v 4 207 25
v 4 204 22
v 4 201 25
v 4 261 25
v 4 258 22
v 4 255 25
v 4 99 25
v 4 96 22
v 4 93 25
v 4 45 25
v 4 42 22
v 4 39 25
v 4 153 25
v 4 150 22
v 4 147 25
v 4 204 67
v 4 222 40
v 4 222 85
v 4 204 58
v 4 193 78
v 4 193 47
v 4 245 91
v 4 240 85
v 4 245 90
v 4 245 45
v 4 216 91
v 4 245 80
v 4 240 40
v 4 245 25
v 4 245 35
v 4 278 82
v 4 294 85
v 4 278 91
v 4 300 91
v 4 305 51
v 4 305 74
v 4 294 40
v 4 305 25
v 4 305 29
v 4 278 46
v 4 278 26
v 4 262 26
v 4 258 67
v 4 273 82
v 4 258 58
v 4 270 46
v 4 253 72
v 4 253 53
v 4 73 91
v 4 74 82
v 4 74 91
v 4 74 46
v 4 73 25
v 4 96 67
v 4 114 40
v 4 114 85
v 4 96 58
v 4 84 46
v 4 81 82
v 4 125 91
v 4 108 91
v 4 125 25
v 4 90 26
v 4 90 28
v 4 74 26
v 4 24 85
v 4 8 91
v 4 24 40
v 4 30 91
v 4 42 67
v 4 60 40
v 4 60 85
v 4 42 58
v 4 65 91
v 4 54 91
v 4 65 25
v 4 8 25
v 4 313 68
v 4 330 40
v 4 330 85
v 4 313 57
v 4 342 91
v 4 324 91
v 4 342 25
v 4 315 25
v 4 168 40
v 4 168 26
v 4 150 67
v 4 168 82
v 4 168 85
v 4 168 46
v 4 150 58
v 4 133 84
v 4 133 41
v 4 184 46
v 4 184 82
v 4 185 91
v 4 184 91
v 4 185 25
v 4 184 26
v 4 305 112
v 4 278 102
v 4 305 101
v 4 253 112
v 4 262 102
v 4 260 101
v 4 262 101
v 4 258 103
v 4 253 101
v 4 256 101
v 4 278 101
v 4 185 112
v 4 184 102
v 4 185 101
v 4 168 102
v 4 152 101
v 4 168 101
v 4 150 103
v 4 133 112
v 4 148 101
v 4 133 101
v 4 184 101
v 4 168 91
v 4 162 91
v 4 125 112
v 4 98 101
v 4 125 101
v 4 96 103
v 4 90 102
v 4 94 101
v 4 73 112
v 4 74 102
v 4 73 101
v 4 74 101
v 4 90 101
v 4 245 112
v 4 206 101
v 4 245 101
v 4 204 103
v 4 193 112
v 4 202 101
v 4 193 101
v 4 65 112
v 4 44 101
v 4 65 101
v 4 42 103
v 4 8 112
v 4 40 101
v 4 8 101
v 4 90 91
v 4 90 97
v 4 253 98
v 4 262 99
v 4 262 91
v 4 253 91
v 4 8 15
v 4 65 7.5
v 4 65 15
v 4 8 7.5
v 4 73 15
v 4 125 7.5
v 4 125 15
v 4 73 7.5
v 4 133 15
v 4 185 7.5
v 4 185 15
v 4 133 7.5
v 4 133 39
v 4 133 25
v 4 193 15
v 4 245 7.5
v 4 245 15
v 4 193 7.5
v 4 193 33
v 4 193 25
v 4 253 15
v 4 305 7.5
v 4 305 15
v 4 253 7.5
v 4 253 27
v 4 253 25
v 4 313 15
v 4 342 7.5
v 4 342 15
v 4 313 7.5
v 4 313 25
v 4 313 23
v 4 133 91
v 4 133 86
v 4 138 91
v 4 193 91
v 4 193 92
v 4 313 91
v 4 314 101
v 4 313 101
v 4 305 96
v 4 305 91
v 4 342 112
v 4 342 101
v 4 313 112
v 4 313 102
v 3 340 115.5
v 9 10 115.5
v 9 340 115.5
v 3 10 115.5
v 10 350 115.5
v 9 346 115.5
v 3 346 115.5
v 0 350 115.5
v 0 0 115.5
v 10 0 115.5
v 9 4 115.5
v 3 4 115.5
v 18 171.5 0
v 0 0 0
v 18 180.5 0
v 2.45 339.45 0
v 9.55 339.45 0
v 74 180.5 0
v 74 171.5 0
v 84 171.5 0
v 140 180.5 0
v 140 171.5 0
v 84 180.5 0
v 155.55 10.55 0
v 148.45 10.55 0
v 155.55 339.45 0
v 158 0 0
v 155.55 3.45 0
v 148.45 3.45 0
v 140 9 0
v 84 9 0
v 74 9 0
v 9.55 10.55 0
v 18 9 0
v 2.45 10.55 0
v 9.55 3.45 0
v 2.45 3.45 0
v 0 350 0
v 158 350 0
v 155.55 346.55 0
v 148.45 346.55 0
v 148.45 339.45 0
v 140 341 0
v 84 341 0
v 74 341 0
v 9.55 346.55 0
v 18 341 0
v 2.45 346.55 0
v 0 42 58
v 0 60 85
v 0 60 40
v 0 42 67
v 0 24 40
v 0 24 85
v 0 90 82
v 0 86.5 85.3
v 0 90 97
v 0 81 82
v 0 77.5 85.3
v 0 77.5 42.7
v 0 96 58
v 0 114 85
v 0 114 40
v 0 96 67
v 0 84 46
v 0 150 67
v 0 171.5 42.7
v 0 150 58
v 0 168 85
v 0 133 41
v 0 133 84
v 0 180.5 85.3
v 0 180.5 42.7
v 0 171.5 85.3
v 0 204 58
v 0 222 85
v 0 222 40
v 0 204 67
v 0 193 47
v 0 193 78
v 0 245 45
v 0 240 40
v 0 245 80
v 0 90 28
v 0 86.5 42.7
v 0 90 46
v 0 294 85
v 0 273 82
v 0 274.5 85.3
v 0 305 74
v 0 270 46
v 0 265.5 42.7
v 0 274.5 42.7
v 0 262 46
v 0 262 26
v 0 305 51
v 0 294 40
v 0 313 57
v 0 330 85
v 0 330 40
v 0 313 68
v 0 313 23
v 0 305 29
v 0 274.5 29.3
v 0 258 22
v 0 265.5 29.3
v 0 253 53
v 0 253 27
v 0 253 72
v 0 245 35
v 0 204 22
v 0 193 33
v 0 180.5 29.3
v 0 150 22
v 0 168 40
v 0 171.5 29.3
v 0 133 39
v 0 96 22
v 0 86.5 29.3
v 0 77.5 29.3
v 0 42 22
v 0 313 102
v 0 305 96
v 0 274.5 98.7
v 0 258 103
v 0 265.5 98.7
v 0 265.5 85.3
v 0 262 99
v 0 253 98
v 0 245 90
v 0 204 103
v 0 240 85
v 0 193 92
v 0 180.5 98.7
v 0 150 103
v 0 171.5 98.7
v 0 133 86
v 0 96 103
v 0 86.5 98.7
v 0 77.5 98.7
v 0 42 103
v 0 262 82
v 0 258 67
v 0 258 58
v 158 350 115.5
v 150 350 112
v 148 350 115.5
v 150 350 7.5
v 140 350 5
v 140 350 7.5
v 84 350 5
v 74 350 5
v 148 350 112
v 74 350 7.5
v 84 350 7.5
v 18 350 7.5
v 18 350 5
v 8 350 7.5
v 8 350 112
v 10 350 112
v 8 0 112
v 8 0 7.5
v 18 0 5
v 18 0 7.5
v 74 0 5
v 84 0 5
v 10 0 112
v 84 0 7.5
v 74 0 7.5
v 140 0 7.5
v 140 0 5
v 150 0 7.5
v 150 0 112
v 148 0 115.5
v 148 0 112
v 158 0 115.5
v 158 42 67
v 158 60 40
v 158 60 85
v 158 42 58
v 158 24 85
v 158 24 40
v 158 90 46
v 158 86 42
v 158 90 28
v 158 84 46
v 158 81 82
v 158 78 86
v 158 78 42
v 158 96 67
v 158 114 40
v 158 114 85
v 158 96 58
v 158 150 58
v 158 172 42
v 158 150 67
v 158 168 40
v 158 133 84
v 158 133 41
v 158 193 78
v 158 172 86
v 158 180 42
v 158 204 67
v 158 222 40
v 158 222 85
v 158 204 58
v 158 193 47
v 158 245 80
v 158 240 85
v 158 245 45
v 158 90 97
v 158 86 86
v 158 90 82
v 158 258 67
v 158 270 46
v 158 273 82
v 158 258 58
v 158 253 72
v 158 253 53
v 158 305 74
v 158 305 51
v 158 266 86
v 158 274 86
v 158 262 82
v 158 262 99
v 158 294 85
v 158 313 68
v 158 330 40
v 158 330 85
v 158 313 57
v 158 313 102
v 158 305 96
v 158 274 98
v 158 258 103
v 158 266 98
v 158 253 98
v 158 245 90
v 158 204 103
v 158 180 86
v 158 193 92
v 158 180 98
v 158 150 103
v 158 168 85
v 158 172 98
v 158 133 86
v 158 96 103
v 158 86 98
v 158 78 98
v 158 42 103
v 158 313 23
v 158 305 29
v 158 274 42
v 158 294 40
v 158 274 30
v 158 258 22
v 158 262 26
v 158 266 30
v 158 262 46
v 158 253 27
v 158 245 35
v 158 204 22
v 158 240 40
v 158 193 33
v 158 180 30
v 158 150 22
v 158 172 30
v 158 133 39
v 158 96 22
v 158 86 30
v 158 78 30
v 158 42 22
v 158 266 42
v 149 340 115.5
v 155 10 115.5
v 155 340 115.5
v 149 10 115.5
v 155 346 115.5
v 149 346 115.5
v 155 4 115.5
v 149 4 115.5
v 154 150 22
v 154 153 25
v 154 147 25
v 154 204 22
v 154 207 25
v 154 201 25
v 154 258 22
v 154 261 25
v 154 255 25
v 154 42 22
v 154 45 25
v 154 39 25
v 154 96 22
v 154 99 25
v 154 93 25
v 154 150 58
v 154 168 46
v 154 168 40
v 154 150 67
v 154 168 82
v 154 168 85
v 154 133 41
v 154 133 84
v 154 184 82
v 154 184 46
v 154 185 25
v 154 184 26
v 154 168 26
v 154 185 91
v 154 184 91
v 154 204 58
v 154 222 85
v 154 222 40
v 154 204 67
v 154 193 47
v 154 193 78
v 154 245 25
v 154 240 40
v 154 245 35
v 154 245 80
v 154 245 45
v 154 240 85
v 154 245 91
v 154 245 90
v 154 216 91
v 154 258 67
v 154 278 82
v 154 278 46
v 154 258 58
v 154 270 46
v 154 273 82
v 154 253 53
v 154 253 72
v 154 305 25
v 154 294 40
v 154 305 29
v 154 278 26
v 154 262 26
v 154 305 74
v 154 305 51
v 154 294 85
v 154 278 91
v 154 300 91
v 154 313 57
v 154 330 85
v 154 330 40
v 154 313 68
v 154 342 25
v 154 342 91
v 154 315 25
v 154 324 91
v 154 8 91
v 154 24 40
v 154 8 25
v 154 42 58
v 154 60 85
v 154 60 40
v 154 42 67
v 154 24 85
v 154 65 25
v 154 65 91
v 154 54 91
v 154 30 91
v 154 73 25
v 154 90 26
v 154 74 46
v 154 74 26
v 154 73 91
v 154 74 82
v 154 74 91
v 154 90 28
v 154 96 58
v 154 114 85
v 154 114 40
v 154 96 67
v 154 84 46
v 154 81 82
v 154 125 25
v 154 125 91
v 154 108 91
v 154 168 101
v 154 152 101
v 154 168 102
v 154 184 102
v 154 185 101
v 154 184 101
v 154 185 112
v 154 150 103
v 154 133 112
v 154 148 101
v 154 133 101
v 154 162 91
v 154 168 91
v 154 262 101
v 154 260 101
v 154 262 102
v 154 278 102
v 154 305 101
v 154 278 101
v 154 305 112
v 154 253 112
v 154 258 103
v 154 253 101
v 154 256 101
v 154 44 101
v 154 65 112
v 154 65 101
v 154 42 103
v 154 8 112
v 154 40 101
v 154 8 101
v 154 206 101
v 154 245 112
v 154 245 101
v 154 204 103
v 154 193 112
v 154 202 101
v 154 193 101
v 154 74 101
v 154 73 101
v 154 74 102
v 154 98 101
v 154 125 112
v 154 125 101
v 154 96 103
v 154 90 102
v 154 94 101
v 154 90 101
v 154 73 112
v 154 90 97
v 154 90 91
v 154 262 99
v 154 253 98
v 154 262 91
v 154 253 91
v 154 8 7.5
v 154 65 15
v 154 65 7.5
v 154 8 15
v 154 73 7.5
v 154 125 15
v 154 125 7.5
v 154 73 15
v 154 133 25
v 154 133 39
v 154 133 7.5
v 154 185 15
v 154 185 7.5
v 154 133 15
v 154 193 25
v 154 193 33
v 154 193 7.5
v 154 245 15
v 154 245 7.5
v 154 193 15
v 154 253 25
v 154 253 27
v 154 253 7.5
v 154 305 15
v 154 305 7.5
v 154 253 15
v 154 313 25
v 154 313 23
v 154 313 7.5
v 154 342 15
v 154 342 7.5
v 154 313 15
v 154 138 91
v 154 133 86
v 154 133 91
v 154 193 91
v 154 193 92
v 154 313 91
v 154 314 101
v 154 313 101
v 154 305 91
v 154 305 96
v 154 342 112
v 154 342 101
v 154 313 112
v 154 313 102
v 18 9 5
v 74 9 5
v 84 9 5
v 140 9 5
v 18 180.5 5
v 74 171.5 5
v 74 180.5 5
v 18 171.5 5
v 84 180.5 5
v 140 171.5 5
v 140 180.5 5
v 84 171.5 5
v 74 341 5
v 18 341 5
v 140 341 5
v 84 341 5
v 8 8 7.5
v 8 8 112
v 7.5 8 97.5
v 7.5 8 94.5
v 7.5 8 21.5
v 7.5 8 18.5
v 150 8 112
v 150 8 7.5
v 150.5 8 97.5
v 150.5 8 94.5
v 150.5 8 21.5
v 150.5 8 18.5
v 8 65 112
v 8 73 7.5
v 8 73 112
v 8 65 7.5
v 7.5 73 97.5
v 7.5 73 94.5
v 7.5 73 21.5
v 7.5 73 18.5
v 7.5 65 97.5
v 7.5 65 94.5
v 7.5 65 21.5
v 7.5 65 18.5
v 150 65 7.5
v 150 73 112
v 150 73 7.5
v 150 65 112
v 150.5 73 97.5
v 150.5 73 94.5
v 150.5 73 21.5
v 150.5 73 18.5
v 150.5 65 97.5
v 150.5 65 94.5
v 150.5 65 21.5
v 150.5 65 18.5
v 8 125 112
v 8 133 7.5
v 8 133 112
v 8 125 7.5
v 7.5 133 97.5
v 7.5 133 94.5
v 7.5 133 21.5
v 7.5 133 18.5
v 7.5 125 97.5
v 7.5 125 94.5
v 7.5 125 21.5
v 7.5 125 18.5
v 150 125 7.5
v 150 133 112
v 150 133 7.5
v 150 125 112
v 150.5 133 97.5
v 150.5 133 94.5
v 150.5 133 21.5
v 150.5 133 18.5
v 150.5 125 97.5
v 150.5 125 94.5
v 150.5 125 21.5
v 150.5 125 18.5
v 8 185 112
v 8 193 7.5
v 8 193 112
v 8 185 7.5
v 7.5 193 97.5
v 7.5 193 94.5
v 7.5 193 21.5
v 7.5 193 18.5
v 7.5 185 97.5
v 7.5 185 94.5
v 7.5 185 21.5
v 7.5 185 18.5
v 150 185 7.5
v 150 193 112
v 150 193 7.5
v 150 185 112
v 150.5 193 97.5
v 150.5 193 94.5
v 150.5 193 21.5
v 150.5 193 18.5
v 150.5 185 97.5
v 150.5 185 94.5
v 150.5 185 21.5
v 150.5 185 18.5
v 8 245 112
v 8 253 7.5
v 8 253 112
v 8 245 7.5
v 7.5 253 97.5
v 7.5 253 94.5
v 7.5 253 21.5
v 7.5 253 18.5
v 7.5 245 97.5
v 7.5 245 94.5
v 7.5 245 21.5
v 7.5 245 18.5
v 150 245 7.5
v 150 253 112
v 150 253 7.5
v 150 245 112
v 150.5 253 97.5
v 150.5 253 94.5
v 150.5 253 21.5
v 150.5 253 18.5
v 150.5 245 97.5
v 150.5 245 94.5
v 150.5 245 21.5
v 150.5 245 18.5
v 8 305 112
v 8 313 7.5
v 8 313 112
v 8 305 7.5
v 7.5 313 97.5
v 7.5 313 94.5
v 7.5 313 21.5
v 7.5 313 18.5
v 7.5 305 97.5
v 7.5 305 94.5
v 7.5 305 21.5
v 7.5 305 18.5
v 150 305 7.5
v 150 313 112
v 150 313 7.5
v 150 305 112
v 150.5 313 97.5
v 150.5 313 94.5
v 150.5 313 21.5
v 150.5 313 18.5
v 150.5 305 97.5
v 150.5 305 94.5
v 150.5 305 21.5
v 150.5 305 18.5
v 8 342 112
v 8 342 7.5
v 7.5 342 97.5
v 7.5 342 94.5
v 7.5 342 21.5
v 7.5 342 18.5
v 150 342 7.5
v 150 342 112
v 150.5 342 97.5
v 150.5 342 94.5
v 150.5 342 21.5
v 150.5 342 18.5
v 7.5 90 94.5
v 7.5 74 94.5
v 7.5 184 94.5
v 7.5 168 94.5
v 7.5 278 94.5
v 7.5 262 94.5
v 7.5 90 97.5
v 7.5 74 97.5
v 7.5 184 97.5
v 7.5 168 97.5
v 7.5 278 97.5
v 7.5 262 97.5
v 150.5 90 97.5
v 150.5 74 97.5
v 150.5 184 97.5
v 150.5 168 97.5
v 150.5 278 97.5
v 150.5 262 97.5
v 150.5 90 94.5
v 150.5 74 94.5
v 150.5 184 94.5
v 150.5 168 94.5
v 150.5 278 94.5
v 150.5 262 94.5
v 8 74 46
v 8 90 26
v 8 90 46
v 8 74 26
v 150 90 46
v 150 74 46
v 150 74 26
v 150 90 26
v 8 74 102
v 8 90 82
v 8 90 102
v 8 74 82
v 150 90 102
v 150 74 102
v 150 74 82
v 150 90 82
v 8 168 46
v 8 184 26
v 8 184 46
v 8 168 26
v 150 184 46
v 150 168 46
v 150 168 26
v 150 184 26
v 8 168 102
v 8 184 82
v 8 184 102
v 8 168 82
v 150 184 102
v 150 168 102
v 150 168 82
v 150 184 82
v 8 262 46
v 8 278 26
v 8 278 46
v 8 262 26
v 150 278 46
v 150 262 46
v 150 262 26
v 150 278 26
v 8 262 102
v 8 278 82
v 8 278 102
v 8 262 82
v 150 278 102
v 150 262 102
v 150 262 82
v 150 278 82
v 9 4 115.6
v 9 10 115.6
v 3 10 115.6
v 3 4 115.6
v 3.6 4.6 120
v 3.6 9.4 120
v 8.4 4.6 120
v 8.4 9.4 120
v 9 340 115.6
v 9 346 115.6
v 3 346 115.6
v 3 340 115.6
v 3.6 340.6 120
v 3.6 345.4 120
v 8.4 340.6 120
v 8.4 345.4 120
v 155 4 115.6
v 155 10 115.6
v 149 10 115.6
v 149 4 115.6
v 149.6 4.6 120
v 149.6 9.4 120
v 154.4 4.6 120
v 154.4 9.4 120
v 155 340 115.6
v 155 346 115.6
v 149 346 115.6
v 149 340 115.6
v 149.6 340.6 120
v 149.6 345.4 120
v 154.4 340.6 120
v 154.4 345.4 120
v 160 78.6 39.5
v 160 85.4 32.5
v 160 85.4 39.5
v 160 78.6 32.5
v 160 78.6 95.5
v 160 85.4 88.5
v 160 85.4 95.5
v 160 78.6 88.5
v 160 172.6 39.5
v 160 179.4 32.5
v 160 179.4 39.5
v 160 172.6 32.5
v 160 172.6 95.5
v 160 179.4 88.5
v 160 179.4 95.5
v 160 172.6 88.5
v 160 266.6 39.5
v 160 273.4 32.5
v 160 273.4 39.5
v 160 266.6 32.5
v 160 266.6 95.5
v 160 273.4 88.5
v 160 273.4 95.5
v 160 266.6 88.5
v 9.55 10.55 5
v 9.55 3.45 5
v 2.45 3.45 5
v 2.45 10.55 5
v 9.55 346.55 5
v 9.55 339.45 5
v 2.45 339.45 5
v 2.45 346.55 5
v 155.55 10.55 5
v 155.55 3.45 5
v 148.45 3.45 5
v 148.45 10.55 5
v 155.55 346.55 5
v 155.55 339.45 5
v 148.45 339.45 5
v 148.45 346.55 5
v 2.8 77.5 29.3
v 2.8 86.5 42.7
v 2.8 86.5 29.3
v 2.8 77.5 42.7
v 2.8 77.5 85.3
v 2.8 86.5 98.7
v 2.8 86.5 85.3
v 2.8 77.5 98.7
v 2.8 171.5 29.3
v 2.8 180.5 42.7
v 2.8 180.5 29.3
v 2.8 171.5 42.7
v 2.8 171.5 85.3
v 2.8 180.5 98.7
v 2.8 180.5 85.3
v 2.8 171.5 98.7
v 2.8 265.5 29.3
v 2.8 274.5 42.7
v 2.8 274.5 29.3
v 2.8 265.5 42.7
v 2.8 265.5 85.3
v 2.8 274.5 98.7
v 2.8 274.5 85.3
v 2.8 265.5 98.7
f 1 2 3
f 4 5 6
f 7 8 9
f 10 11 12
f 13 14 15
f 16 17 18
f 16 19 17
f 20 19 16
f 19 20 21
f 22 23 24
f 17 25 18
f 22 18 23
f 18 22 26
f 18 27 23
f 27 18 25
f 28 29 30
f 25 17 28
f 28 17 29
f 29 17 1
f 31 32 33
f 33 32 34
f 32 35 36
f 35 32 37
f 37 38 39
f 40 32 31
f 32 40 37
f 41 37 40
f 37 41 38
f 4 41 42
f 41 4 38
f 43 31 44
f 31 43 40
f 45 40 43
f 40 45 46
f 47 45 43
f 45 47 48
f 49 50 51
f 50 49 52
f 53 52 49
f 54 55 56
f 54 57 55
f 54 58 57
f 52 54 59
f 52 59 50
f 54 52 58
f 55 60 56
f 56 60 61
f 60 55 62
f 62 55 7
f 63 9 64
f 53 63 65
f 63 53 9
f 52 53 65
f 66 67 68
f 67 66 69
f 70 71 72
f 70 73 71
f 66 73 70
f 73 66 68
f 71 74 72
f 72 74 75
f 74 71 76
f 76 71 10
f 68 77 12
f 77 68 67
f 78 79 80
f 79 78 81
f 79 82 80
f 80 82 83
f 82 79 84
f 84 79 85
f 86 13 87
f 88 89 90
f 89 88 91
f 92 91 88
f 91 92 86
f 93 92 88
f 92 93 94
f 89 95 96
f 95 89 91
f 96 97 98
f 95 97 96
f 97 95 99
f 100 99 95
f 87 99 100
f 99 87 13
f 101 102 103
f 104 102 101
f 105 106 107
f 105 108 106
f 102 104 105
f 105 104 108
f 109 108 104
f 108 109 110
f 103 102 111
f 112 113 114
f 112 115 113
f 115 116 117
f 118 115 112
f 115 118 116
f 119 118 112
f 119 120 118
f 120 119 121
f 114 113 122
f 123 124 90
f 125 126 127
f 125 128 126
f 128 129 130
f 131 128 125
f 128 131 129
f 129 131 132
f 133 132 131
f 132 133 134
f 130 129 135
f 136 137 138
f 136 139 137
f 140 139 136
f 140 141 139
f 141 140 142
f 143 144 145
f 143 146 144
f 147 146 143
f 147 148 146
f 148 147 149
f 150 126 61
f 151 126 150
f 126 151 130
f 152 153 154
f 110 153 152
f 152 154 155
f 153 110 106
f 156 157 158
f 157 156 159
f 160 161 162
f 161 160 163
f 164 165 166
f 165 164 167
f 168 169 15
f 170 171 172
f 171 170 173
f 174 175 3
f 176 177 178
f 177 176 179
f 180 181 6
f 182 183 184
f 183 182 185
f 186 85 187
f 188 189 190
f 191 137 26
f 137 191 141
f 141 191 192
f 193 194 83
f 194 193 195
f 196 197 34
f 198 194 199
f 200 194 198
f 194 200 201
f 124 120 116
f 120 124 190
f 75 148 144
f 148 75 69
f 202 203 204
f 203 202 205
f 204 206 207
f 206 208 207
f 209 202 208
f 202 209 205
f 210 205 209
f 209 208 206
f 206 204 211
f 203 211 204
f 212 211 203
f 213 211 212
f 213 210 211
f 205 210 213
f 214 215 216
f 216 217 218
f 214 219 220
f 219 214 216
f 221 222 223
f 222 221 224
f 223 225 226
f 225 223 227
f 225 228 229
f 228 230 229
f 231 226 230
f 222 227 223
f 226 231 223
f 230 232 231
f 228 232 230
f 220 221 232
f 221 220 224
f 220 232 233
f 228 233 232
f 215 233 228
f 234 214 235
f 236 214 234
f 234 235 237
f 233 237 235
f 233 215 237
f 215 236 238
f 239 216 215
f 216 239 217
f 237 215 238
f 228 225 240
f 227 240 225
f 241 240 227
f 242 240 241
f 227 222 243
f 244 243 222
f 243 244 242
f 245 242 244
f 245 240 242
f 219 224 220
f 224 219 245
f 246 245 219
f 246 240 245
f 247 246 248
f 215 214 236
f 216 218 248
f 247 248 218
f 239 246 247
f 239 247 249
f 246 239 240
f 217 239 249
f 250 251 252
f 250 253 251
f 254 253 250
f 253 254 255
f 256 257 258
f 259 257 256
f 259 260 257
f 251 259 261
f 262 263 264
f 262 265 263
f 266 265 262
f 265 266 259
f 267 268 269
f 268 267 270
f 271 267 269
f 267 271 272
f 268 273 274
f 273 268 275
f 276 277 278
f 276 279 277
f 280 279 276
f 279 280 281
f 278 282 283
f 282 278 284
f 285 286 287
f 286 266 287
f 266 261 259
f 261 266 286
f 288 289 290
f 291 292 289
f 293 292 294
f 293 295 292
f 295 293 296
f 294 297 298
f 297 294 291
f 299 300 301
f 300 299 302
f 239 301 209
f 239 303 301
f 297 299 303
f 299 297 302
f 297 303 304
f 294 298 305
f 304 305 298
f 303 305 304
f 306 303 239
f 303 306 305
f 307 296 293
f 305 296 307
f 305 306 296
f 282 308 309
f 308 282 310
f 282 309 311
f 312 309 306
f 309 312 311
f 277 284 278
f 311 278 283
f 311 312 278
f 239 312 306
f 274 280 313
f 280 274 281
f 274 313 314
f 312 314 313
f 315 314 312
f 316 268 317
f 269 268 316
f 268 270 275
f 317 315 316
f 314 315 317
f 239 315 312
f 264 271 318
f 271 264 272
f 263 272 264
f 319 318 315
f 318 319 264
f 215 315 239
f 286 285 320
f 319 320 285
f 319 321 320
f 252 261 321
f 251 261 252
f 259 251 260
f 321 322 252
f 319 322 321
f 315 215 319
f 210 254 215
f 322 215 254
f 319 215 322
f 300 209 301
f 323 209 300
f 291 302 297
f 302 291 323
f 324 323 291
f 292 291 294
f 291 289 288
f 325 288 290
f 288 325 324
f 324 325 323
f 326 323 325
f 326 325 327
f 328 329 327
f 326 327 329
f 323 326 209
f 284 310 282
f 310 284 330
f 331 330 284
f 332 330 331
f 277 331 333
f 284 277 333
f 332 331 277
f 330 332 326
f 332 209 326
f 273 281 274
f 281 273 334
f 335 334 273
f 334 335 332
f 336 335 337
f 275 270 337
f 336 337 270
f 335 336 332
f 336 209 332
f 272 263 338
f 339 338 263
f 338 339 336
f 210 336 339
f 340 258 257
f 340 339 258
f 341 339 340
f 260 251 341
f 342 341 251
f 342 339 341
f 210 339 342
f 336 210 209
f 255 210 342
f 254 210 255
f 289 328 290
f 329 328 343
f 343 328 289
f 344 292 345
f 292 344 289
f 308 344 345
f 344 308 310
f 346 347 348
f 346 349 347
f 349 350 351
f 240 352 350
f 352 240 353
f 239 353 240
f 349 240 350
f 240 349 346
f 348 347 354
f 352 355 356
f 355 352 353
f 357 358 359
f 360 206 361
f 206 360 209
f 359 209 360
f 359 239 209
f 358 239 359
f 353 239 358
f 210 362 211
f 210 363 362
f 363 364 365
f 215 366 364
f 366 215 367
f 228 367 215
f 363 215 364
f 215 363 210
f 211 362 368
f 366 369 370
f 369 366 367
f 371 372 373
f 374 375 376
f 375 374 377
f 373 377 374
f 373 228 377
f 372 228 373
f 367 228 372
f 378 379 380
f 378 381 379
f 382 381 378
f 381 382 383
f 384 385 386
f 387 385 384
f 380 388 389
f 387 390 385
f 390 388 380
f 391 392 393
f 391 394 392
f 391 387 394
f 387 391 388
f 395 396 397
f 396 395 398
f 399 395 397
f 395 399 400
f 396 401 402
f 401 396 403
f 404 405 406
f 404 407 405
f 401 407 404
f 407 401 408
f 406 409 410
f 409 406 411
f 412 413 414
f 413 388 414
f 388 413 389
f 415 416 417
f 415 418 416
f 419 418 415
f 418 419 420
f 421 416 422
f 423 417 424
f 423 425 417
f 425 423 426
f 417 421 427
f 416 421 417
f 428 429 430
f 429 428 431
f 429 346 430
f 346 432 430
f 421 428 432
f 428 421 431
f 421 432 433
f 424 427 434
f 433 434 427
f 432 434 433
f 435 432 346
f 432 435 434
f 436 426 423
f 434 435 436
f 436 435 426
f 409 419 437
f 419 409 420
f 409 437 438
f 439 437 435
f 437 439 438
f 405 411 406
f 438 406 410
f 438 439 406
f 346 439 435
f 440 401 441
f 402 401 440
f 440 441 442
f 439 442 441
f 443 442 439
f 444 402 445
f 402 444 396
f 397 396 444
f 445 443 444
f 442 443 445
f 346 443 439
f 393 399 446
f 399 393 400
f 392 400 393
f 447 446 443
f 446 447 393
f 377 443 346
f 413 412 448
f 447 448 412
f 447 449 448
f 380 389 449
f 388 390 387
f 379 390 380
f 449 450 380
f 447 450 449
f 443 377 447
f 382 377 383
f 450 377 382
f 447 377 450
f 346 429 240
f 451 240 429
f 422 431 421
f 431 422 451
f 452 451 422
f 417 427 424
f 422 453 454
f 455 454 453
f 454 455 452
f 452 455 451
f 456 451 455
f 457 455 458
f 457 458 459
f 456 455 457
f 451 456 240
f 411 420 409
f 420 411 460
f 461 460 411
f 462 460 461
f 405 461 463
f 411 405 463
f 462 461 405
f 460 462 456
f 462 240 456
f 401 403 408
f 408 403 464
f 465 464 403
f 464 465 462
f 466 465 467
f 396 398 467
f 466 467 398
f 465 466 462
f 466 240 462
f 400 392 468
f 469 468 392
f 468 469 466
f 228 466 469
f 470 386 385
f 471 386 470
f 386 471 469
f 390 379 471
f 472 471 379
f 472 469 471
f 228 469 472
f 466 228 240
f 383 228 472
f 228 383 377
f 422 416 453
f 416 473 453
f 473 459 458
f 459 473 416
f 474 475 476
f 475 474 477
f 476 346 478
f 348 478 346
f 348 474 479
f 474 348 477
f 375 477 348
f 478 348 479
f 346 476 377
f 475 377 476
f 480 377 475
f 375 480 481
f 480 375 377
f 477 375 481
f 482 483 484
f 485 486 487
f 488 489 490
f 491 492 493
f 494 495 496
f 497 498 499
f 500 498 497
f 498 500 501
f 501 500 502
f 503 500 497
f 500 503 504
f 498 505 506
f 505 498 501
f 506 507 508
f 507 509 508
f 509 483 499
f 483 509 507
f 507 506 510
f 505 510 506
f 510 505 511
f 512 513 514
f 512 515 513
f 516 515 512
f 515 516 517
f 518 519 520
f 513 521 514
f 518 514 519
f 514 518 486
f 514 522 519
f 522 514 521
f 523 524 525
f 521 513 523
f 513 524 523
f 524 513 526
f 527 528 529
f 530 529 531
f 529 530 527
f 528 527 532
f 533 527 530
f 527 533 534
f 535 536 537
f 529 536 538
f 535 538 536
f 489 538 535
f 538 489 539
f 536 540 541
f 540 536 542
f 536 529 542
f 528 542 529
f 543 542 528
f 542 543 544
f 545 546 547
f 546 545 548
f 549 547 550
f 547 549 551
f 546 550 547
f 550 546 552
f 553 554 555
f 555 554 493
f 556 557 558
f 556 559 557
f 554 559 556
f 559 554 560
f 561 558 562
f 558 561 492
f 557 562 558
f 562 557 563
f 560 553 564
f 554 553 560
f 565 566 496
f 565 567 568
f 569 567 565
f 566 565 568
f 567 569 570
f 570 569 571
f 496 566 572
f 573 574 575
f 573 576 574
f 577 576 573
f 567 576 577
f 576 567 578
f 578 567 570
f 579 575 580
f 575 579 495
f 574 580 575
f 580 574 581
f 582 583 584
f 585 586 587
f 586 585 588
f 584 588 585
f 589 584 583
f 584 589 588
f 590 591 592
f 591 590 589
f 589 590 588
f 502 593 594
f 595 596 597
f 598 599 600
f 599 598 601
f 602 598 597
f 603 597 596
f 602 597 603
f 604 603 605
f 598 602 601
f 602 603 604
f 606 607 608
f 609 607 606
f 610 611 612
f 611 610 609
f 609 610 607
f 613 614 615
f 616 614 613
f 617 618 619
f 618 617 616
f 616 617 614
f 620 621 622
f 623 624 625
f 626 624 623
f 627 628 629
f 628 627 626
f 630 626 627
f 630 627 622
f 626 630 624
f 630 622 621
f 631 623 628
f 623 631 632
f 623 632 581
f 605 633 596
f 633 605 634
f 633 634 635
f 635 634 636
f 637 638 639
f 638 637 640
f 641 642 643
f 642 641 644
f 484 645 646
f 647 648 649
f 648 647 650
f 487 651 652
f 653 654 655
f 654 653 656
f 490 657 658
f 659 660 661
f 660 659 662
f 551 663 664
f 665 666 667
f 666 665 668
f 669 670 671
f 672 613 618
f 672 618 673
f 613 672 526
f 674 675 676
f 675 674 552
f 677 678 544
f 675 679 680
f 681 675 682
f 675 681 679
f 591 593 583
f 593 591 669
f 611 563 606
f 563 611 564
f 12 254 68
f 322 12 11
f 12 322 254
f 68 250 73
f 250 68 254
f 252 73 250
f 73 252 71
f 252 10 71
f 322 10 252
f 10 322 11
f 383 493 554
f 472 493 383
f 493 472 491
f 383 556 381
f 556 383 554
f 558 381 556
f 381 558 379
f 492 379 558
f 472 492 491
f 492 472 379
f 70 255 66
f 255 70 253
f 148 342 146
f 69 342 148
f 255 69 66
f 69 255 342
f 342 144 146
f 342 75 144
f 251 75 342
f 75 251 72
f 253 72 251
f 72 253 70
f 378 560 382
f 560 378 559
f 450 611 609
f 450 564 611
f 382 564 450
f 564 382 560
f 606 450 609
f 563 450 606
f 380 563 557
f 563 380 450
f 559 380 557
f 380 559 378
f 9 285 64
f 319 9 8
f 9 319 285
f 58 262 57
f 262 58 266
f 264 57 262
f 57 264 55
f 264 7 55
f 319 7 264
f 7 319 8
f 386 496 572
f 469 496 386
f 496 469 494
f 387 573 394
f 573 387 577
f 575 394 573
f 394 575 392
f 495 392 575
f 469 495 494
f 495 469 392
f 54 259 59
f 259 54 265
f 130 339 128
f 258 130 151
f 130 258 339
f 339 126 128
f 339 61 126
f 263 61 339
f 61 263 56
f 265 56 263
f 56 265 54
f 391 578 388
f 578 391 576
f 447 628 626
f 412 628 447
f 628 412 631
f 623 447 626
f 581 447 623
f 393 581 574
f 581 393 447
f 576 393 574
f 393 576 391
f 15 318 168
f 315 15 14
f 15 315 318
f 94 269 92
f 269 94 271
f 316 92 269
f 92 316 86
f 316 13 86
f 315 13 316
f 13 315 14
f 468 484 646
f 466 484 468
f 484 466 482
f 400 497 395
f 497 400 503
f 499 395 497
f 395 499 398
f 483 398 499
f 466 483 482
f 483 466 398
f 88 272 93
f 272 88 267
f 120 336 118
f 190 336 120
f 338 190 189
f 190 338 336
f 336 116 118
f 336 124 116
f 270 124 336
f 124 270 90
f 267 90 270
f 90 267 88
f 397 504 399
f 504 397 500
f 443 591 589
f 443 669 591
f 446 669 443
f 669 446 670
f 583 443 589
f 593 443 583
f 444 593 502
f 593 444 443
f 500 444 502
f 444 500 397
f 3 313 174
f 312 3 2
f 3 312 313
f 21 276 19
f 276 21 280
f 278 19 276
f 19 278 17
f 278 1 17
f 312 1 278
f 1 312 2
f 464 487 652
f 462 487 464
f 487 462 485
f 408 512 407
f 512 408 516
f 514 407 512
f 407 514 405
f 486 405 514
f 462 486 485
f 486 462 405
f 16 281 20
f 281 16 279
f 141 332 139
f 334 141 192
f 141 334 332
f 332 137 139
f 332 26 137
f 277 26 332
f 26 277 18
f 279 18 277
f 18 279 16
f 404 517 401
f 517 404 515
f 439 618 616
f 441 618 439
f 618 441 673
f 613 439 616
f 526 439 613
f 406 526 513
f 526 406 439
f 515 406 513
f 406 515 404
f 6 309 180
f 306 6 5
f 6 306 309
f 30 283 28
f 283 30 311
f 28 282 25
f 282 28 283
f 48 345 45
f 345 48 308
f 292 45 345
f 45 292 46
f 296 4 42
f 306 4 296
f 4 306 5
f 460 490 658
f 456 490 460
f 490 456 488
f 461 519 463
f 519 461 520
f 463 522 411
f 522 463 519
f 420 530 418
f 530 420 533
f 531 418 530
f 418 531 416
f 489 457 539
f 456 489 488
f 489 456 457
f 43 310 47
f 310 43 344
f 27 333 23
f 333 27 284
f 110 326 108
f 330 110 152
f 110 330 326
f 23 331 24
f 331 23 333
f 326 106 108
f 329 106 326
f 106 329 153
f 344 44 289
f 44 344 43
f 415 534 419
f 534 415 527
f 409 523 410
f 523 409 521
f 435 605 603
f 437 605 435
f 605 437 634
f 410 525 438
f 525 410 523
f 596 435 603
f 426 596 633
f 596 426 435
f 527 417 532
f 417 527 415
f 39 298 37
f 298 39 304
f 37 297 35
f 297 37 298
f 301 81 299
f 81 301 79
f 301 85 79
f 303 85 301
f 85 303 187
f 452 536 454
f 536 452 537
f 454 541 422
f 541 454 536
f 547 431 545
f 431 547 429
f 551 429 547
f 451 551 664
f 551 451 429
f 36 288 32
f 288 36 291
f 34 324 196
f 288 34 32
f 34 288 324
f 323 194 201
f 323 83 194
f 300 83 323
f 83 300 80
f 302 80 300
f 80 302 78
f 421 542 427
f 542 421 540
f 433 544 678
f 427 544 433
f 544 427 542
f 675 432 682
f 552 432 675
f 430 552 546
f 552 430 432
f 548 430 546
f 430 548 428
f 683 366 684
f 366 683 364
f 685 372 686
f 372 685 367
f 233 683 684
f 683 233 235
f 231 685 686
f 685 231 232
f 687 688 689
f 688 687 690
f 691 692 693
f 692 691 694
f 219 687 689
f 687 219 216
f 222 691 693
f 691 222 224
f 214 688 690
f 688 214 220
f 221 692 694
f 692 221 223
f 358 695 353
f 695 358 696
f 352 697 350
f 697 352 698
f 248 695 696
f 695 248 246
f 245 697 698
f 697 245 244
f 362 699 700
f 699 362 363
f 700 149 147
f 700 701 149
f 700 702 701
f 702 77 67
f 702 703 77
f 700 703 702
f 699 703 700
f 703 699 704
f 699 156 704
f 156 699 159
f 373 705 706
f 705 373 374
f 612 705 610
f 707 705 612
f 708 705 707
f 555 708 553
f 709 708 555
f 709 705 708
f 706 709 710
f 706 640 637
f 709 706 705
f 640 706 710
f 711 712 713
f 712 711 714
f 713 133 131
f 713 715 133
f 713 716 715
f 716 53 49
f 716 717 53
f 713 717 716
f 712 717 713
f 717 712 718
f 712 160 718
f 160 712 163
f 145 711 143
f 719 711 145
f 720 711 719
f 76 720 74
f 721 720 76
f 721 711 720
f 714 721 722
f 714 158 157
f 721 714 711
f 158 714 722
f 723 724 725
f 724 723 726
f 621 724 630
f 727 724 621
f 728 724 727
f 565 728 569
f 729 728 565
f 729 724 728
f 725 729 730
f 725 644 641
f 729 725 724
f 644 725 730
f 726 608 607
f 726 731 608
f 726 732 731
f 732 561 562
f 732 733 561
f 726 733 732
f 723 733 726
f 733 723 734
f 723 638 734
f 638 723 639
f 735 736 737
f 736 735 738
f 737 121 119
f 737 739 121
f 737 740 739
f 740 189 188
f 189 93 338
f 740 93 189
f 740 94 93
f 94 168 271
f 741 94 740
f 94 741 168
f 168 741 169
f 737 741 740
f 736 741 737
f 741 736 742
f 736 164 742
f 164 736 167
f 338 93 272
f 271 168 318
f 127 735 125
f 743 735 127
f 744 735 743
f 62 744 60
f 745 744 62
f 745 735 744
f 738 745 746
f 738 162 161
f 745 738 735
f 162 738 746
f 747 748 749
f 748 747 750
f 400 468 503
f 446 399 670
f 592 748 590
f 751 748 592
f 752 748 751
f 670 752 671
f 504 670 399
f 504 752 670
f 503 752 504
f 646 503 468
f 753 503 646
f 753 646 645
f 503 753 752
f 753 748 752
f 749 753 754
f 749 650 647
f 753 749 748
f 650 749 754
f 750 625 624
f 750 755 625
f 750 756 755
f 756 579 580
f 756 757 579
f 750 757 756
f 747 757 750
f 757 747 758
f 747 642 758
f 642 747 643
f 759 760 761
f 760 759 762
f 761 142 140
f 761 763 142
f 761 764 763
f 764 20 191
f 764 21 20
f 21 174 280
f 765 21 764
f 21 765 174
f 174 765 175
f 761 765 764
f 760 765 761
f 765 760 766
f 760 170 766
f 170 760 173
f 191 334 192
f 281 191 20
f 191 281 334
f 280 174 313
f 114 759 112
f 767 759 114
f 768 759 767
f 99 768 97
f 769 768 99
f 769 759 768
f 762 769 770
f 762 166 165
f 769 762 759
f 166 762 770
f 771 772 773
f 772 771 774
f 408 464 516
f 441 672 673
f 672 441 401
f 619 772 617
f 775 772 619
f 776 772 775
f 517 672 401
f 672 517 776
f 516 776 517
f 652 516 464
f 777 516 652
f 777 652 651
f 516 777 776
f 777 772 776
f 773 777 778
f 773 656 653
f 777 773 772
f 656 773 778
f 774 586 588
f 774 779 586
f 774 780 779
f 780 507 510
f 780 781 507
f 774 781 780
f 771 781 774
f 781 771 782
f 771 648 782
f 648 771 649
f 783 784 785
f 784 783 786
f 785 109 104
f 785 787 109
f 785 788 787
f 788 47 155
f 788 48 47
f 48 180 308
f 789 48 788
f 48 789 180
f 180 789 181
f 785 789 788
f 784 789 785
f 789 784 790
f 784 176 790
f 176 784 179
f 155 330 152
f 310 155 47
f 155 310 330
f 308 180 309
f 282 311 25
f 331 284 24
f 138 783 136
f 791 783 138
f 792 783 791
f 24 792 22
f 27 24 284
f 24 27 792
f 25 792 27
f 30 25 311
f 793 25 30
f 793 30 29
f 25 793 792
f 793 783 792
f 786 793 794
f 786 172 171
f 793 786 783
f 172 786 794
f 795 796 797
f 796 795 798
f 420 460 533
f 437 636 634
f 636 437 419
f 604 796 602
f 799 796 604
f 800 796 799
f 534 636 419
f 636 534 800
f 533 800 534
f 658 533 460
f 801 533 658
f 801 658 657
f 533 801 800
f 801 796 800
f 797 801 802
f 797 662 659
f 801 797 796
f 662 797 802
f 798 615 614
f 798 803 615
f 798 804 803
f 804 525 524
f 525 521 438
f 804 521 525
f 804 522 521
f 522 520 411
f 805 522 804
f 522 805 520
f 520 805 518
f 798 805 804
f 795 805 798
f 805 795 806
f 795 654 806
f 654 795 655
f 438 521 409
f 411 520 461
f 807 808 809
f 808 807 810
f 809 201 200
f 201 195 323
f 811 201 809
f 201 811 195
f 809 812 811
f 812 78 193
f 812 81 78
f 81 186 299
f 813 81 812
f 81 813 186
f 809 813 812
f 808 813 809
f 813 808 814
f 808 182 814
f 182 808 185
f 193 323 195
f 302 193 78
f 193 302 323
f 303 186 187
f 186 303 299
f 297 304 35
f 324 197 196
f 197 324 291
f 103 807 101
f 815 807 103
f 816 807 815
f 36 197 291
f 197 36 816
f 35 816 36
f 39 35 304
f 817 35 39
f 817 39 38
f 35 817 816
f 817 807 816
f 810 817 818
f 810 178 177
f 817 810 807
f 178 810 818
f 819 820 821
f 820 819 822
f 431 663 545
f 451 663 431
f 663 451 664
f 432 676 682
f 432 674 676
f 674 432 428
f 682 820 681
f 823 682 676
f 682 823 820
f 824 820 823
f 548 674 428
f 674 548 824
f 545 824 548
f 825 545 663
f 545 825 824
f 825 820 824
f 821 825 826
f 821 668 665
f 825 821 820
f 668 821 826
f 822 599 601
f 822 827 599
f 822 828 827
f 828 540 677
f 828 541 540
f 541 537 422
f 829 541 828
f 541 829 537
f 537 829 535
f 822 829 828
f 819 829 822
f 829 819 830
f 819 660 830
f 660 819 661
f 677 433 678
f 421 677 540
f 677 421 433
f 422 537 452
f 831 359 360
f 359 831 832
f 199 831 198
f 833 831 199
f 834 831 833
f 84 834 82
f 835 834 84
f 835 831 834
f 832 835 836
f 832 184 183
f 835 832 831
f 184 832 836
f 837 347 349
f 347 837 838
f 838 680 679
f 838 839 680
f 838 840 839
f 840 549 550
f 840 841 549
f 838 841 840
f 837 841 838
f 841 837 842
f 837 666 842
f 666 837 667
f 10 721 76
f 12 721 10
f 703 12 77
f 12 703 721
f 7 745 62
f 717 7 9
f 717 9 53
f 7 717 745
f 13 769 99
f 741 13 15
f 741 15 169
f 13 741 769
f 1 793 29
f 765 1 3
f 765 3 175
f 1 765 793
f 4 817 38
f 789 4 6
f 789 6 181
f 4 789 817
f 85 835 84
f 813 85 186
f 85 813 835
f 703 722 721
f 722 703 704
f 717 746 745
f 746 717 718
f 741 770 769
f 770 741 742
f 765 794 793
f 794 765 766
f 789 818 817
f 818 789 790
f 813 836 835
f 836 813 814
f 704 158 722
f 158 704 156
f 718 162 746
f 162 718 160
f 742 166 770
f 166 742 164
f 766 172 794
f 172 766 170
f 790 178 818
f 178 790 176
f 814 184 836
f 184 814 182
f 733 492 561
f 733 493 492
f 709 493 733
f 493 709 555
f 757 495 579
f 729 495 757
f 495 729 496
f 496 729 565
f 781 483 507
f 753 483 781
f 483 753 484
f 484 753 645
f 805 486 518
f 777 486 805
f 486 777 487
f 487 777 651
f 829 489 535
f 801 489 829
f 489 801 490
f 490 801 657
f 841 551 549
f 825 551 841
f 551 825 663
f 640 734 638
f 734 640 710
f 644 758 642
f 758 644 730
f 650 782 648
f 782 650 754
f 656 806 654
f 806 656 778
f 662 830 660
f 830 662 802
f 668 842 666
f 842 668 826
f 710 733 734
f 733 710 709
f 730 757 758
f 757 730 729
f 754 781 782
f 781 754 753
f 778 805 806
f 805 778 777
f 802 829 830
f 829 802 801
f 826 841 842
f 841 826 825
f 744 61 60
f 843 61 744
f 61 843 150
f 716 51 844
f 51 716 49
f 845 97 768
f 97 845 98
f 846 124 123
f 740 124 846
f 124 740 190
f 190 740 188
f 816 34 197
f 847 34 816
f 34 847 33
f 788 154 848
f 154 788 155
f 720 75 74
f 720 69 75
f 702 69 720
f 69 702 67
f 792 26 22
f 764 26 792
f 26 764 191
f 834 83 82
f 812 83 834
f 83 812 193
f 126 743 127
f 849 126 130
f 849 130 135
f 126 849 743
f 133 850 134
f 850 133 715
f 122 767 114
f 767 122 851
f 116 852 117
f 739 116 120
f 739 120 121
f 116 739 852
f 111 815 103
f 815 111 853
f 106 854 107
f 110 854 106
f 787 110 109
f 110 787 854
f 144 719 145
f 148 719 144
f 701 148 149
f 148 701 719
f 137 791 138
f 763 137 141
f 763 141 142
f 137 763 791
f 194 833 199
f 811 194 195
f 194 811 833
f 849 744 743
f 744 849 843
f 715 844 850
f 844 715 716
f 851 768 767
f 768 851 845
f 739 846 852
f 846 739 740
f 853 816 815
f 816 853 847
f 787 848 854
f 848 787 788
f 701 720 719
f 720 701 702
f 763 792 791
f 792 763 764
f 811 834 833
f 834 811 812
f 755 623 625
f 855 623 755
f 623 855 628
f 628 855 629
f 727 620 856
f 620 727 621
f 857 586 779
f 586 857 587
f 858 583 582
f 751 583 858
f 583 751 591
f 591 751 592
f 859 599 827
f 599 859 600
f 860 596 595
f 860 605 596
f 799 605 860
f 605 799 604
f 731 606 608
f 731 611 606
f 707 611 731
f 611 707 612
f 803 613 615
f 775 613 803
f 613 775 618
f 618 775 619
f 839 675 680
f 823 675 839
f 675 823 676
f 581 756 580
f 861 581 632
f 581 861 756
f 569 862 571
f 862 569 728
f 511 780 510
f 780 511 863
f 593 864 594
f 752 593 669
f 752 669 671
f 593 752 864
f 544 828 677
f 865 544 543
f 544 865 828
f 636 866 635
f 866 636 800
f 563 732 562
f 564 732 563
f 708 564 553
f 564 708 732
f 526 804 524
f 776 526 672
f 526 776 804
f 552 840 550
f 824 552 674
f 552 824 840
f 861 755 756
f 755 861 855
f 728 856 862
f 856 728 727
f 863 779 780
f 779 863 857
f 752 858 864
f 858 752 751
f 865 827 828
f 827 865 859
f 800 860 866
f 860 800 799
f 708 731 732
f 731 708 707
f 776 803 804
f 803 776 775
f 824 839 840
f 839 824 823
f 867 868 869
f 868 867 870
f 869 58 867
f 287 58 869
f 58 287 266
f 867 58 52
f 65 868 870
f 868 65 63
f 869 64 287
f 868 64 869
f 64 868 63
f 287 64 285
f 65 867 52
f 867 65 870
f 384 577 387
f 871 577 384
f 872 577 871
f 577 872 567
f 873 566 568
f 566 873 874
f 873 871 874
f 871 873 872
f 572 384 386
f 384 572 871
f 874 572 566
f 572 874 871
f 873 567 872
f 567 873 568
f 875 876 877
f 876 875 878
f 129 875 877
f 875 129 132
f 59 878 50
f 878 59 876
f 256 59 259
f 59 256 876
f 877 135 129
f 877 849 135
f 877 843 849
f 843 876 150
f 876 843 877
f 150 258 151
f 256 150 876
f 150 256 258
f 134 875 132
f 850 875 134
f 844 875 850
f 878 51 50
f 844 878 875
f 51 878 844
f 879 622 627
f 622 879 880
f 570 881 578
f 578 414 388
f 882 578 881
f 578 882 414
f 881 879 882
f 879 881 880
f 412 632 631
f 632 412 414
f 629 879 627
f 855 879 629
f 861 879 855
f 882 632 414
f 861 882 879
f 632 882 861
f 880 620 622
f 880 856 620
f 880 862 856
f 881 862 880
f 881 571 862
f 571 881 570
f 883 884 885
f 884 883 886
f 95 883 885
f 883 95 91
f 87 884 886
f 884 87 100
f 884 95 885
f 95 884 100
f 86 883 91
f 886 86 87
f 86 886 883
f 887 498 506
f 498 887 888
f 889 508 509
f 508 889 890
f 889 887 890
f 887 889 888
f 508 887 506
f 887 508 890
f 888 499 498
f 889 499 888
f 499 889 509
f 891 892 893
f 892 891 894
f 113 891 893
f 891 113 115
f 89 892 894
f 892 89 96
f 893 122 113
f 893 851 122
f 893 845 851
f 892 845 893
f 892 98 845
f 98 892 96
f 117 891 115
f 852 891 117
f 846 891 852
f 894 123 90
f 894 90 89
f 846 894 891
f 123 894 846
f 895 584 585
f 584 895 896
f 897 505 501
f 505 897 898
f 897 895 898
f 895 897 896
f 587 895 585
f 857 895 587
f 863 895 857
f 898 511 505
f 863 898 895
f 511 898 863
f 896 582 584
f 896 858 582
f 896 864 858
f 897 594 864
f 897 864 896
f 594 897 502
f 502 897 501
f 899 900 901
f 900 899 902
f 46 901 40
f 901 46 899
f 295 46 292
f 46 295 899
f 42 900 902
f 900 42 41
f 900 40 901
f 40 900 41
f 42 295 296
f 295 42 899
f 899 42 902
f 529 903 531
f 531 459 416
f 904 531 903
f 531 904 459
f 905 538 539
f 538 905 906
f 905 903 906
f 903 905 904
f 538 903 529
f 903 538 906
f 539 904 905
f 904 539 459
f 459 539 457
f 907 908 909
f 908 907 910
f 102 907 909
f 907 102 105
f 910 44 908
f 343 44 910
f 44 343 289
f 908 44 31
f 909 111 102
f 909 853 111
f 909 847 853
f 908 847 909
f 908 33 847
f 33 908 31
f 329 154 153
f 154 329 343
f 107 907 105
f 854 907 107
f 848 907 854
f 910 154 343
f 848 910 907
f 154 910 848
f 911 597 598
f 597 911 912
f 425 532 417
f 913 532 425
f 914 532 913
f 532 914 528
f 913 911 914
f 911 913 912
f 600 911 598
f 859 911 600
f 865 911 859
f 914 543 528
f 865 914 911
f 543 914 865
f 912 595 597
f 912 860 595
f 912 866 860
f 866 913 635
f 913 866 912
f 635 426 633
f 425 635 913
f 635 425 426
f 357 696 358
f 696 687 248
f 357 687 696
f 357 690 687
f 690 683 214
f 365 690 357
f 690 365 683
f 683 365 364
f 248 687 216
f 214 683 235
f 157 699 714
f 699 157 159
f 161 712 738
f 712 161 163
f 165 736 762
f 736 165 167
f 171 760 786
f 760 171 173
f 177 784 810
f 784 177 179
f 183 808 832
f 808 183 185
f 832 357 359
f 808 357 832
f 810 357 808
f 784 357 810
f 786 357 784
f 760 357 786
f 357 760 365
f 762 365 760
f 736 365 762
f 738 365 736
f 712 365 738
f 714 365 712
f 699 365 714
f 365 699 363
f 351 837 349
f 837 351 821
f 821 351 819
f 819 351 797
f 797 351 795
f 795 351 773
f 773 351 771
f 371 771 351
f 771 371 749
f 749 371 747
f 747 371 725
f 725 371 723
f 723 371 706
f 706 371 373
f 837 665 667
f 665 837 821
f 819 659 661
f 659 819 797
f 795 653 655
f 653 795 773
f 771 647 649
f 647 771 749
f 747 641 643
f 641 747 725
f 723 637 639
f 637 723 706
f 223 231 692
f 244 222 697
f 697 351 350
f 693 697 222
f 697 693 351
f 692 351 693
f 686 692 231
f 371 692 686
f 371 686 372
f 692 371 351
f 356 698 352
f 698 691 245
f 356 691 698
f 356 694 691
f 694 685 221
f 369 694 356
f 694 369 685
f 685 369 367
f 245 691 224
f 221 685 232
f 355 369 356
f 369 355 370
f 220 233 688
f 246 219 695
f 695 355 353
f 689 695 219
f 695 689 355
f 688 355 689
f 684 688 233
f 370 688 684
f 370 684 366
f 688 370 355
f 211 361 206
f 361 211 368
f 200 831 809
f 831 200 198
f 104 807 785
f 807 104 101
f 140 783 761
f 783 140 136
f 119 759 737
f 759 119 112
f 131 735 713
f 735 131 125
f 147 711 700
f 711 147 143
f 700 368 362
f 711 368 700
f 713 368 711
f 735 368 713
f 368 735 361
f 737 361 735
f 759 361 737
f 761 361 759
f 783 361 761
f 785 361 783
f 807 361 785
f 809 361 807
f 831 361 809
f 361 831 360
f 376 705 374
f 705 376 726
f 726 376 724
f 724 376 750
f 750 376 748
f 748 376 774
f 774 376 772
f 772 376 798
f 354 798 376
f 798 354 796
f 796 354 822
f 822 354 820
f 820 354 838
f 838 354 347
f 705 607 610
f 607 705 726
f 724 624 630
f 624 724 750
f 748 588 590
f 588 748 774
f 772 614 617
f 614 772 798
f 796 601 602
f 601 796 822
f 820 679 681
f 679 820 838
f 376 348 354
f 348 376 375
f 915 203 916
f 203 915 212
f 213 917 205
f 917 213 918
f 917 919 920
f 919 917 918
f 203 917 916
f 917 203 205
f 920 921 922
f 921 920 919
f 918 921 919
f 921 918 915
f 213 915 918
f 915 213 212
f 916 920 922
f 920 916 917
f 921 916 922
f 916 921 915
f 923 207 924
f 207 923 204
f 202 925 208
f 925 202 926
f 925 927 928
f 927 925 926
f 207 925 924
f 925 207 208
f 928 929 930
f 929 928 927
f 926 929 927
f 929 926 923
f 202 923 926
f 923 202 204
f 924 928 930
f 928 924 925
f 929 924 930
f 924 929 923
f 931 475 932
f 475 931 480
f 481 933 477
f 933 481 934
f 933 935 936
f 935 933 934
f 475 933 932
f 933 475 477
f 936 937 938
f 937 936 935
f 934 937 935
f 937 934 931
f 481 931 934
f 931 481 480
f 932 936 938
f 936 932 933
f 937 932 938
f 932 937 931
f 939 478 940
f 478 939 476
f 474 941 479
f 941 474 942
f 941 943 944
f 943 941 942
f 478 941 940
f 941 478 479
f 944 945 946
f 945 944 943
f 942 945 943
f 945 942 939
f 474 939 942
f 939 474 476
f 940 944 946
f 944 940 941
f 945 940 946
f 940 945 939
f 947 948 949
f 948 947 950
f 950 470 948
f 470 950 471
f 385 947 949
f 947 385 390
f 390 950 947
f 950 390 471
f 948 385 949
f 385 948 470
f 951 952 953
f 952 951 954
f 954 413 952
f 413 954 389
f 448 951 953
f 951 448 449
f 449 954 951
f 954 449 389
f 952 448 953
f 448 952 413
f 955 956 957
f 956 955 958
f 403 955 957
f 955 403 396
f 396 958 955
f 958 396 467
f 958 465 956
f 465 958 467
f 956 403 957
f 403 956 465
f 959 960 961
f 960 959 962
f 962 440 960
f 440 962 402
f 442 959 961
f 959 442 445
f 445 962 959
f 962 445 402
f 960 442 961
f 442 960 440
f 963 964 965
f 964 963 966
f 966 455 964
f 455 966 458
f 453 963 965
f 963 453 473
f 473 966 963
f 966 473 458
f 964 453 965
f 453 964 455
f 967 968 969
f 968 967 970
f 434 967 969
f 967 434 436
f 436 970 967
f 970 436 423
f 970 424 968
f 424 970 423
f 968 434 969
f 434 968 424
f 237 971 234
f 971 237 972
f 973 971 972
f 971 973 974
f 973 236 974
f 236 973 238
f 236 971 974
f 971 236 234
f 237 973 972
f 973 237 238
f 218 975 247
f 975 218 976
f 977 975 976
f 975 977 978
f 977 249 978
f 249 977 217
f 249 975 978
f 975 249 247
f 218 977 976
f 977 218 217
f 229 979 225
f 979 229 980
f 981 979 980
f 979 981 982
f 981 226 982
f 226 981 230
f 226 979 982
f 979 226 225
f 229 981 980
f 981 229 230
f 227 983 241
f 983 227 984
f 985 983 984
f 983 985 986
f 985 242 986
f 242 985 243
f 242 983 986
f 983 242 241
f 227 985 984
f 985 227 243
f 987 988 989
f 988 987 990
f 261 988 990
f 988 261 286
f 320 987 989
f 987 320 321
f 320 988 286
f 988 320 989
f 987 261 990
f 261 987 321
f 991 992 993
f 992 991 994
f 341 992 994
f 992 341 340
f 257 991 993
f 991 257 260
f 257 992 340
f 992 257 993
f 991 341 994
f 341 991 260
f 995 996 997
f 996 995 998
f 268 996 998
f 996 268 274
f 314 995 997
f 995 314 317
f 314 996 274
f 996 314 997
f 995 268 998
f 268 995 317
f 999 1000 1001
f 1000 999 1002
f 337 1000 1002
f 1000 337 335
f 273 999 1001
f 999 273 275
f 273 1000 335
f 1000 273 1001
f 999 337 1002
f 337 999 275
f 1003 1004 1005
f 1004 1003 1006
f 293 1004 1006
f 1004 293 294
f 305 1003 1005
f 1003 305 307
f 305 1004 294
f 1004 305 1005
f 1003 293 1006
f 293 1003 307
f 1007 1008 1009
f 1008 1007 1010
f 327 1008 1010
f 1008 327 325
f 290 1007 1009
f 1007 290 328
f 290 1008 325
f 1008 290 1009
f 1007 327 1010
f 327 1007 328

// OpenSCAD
// GetCigar humidor | Modular 18-box housing for reinforced L basket
// Based on the functional concept of supplied box_80.stl: stackable male/female joints
// and air-permeable side shell; dimensional redesign (NOT global STL stretching).
// mm, external bounding box including connectors: X 0..160, Y 0..350, Z 0..120
// Basket original outer size 140 x 350 x 100; its ~345 body + ~5 grip needs
// BOTH ends of the housing open (no solid rear wall).
// PRINT: x-y footprint on build plate, z vertical. No support intent, verify slicer.
// CAUTION: load-bearing stack = prototype, physical fit/load test before 18 prints.

$fn = 24;
outer_w = 160;
body_w = 158;        // 2mm reserved for right-side male lateral locator bosses
outer_d = 350;
outer_h = 120;
body_top = 115.5;   // upper peg tips reach exactly 120
basket_w = 140;
basket_d = 350;
basket_h = 100;
basket_x = 9;       // 1.5mm clearance at side runner datum x=7.5,150.5
basket_z = 7.5;     // floor-support height; basket top = 107.5
side_wall = 4;
side_datum_l = 7.5;
side_datum_r = 150.5;
post_w = 8;
bottom_rail_h = 7.5;
top_rail_z = 112;
vent_r = 18.0;       // side diamond half-diagonal

module box_side_wall() {
    difference() {
        // Both 4mm side webs (continuous along 350mm)
        union() {
            cube([side_wall, outer_d, body_top]);
            translate([body_w-side_wall,0,0]) cube([side_wall,outer_d,body_top]);
        }
        // Diamond-shaped self-supporting air vents, original perforated idea.
        for (yc = [42:54:312], zc = [40,85]) {
            translate([-0.3,yc,zc]) rotate([0,90,0])
                linear_extrude(height=side_wall+0.6)
                    polygon([[-vent_r,0],[0,vent_r],[vent_r,0],[0,-vent_r]]);
            translate([body_w-side_wall-0.3,yc,zc]) rotate([0,90,0])
                linear_extrude(height=side_wall+0.6)
                    polygon([[-vent_r,0],[0,vent_r],[vent_r,0],[0,-vent_r]]);
        }
    }
}

module inner_guide(z,h) {
    // Profile in XZ, extruded along the full Y depth.
    translate([0,outer_d,0]) rotate([90,0,0])
        linear_extrude(height=outer_d)
            polygon([[4,z],[7.5,z+3.5],[7.5,z+h-3.5],[4,z+h]]);
}

module structural_frame() {
    // Bottom sliding rails: support continuous contact lines under basket's
    // two long floor edges and the central reinforcement rib.
    cube([18,outer_d,bottom_rail_h]);
    translate([body_w-18,0,0]) cube([18,outer_d,bottom_rail_h]);
    translate([74,0,0]) cube([10,outer_d,bottom_rail_h]);

    // Bottom square-up cross rails are BELOW the floor-support level.
    for (y=[0,171.5,341]) translate([0,y,0]) cube([body_w,9,5]);

    // Top horizontal load frame: remains above the basket top z=107.5.
    translate([0,0,top_rail_z]) cube([10,outer_d,body_top-top_rail_z]);
    translate([body_w-10,0,top_rail_z]) cube([10,outer_d,body_top-top_rail_z]);
    // NO transverse bars at the TOP: bridging 140mm would require supports.
    // Top frame stays as two long load-bearing side beams.

    // Four corners + five intermediate 8mm-wide stiffeners along length.
    for (y=[0,65,125,185,245,305,342]) {
        translate([0,y,0]) cube([post_w,8,body_top]);
        translate([body_w-post_w,y,0]) cube([post_w,8,body_top]);
    }

    // 143mm guide datum at x=7.5/150.5, only in low wall height bands.
    // Narrow strips avoid rubbing the entire 100mm tall basket side.
    // Tapered 45-degree ramps avoid >3mm horizontal unsupported shelves.
    for (z=[15,91]) {
        inner_guide(z,10);
        translate([body_w,0,0]) mirror([1,0,0]) inner_guide(z,10);
    }

    // Thickened blocks around lateral locators so vent cuts cannot weaken them.
    for (yc=[82,176,270],zc=[36,92]) {
        translate([0,yc-8,zc-10]) cube([8,16,20]);
        translate([body_w-8,yc-8,zc-10]) cube([8,16,20]);
    }
}

module top_peg(x,y) {
    // Self-supporting tapered plug: 6.0 base -> 4.8 tip, h 4.5mm
    hull() {
        translate([x-3,y-3,body_top-0.05]) cube([6,6,0.15]);
        translate([x-2.4,y-2.4,outer_h-0.15]) cube([4.8,4.8,0.15]);
    }
}

module lateral_peg(y,z) {
    // Right side: projects to x=160, with matching blind socket on x=0.
    // Two trapezoidal segments reduce sharp unsupported horizontal ledges.
    hull() {
        translate([body_w-0.6,y-4,z-6]) cube([0.6,8,12]);
        translate([body_w+1.6,y-3.4,z-3.5]) cube([0.4,6.8,7]);
    }
}

module main_body() {
    union() {
        box_side_wall();
        structural_frame();
        // Male pegs on upper rim, female sockets in underside, four locations.
        for(x=[6,body_w-6],y=[7,outer_d-7]) top_peg(x,y);
        // Side-by-side locating features, male right / female left.
        for(y=[82,176,270],z=[36,92]) lateral_peg(y,z);
    }
}

difference() {
    main_body();
    // 0.55mm XY clearance per side around nominal 6mm peg; 4.9mm depth.
    for(x=[6,body_w-6],y=[7,outer_d-7])
        translate([x-3.55,y-3.55,-0.05]) cube([7.1,7.1,5.05]);
    // Matching sockets for horizontal male locators.
    // Adjacent boxes mate at pitch 158mm, assembled row width 476mm.
    for(y=[82,176,270],z=[36,92])
        translate([-0.1,y-4.5,z-6.7]) cube([2.9,9,13.4]);
}
